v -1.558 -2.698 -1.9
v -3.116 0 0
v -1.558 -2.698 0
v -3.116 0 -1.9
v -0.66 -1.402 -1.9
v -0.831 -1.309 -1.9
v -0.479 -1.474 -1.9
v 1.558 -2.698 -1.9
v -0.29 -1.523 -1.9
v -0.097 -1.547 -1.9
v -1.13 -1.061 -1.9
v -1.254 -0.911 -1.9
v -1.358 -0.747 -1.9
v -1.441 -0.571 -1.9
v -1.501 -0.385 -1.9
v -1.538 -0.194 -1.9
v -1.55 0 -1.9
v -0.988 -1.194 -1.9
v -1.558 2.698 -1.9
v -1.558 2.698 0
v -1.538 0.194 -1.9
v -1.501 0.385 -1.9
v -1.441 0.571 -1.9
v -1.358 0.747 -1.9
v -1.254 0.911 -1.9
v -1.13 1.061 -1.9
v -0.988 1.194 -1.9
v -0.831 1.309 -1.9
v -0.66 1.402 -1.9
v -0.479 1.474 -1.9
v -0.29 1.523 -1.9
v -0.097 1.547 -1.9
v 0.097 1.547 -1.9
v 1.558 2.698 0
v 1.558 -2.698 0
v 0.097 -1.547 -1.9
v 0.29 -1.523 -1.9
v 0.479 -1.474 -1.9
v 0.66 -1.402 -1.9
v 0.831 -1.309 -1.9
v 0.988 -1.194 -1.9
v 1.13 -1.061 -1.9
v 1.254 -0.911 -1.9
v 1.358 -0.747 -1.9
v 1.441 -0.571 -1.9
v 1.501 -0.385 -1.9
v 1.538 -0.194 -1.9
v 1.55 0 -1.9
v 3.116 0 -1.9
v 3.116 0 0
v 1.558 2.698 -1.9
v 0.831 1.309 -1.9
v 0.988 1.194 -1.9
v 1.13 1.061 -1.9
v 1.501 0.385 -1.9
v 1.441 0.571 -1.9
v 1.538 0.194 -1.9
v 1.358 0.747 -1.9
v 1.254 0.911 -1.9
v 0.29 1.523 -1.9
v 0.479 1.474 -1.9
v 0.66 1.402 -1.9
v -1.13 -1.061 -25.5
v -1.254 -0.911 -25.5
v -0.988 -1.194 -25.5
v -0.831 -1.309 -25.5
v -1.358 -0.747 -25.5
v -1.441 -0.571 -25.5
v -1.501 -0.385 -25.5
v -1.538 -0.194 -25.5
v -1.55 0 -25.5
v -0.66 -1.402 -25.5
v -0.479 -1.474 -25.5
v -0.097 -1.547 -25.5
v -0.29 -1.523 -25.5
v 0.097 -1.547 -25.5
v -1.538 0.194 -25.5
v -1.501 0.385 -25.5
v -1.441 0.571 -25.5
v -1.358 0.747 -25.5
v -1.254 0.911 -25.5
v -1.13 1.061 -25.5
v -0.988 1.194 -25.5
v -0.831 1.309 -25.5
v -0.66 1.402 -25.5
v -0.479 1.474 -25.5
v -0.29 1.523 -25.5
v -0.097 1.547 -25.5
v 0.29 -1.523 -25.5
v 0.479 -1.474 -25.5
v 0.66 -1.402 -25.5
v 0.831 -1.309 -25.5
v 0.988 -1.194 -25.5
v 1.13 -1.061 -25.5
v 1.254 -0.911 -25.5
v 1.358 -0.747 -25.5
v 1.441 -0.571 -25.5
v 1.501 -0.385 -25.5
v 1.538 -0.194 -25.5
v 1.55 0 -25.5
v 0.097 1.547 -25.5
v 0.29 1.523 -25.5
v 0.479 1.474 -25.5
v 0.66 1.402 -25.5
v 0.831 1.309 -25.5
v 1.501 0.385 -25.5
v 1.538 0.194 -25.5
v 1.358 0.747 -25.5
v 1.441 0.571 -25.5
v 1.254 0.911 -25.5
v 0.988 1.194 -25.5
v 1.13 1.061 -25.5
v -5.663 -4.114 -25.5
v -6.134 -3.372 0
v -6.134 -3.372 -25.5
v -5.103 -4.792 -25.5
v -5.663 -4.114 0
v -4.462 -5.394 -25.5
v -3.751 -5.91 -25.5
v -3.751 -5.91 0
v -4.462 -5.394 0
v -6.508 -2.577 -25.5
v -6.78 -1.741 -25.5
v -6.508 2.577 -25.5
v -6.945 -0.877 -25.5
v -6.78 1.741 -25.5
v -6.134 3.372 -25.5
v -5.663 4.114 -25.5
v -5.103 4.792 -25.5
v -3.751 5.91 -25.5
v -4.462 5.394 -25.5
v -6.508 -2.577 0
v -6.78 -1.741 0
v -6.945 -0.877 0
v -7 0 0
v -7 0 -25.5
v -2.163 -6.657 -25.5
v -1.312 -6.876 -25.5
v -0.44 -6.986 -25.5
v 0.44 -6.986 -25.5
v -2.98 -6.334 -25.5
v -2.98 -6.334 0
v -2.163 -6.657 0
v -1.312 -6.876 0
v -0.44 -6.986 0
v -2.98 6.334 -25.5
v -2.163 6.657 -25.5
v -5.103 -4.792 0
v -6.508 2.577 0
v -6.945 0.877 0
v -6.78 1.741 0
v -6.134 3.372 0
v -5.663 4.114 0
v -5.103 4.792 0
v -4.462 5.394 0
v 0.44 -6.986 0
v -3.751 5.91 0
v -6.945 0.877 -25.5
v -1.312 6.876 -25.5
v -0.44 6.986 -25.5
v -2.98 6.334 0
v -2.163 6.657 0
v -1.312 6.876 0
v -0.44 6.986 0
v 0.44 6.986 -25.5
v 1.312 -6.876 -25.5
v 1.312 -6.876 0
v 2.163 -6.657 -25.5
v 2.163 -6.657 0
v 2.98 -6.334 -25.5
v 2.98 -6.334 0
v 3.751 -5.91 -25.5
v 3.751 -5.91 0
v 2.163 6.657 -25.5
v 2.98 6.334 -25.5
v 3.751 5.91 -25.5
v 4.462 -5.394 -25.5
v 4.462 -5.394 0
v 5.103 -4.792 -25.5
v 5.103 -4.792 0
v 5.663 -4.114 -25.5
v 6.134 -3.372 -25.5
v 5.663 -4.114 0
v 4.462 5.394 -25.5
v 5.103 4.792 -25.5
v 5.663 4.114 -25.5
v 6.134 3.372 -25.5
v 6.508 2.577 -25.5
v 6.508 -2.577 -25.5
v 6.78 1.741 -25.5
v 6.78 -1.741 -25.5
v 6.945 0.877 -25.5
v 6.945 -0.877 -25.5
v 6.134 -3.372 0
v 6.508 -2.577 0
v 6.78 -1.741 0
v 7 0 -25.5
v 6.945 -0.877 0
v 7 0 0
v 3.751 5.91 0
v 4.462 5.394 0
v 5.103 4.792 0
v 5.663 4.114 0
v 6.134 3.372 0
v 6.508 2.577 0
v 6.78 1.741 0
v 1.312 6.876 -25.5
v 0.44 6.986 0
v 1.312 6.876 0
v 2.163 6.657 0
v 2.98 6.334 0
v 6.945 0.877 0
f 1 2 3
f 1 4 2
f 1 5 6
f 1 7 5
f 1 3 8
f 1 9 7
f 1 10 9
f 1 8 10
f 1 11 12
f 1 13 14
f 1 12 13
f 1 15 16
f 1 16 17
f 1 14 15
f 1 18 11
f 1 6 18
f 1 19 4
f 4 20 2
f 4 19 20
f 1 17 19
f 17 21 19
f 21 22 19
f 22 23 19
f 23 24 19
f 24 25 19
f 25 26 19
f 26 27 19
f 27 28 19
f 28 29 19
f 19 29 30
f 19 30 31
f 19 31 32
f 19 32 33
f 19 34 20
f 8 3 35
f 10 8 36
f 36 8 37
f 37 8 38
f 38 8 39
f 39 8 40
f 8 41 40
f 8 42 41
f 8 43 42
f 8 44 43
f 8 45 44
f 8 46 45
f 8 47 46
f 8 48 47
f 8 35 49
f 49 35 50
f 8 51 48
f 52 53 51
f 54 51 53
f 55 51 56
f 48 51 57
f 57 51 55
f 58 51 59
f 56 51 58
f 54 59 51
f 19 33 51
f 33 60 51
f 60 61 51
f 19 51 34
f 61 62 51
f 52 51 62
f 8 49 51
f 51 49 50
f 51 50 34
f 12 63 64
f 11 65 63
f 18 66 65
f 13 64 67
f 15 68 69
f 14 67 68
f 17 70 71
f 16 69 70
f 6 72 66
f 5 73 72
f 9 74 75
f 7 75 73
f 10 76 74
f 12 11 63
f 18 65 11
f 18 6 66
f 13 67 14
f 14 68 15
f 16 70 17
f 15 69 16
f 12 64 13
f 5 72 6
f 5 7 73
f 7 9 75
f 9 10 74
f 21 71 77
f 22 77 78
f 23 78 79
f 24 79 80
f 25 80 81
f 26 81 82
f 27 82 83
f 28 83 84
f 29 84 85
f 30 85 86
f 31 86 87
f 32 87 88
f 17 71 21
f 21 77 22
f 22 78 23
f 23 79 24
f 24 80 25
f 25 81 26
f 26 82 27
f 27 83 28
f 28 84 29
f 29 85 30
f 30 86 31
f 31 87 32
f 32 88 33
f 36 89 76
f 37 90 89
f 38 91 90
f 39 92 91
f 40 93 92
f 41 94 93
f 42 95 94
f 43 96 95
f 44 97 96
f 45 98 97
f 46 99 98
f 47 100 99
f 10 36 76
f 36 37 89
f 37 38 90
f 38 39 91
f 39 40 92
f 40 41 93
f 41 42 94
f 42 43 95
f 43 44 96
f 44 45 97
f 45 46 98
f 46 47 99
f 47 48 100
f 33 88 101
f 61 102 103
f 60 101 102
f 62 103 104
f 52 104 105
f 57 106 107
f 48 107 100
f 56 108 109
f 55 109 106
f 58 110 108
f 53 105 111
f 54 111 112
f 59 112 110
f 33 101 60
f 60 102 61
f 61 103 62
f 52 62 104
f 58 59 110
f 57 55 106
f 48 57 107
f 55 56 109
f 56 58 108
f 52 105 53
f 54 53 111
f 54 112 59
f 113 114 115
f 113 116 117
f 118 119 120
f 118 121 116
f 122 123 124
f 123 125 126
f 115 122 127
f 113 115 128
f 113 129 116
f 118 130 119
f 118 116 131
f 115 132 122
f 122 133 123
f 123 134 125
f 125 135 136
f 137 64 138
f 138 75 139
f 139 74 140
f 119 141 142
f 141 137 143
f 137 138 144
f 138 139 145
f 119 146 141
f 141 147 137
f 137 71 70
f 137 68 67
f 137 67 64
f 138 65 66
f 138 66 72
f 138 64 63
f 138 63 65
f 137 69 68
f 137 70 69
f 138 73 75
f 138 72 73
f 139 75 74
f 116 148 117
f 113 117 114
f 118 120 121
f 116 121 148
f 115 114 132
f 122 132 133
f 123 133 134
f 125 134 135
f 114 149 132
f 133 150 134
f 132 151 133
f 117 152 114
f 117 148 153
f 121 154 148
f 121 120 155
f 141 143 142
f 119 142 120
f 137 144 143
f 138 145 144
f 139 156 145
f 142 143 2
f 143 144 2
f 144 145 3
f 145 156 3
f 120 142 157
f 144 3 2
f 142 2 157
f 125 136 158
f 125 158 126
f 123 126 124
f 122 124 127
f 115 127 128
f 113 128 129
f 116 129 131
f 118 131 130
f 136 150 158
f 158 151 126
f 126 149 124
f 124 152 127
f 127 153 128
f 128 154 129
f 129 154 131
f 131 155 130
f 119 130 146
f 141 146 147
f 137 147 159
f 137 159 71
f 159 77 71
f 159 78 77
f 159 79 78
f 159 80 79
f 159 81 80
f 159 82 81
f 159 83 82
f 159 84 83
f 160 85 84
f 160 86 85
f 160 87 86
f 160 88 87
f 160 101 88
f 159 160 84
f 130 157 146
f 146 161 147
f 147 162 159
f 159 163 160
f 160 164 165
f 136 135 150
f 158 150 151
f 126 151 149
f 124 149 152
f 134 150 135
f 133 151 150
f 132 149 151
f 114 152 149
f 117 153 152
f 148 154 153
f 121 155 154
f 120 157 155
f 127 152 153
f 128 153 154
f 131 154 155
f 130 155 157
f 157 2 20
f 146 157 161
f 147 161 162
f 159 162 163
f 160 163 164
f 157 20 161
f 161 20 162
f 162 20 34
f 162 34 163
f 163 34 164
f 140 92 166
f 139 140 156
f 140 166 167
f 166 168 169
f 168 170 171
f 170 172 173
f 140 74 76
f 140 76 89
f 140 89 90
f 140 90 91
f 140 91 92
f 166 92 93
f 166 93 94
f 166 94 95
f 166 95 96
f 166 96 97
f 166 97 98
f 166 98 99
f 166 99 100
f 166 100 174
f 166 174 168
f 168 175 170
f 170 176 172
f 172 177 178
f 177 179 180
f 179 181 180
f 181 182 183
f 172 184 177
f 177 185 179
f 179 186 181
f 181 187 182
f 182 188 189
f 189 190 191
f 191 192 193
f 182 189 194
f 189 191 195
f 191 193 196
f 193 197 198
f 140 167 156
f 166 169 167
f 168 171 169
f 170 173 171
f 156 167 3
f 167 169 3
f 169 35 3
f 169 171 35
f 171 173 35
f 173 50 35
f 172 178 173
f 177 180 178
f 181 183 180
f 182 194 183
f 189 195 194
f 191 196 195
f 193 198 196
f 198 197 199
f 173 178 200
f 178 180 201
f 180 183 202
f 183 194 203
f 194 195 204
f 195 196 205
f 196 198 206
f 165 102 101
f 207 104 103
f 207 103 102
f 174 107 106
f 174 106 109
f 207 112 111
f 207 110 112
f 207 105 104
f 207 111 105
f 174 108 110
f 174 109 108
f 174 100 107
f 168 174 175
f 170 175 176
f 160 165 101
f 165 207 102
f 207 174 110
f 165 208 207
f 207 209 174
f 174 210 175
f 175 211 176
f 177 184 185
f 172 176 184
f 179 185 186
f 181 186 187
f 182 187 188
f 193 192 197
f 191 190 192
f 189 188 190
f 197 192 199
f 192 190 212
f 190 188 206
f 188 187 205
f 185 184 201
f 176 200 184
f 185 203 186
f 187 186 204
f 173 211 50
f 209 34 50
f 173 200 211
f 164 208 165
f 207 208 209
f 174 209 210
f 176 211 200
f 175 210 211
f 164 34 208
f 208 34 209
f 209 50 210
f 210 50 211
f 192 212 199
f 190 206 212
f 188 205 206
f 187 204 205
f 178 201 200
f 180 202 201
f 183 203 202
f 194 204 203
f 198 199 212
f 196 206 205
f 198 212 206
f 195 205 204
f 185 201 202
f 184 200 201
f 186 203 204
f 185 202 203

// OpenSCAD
$fn = 50;

difference() {
	union() {
		translate(v = [0, 0, -25.5]) {
			cylinder(h = 25.5, r = 7.0);
		}
	}
	union() {
		translate(v = [0, 0, 0]) {
			rotate(a = [0, 0, 0]) {
				difference() {
					union() {
						translate(v = [0, 0, -1.9]) {
							linear_extrude(height = 1.9) {
								polygon(points = [[3.1158, 0.0], [1.5579000000000005, 2.698361953111554], [-1.5578999999999994, 2.6983619531115544], [-3.1158, 3.815754496783323e-16], [-1.5579000000000014, -2.6983619531115535], [1.557899999999998, -2.6983619531115552]]);
							}
						}
					}
					union();
				}
			}
		}
		#translate(v = [0, 0, -100.0]) {
			cylinder(h = 200, r = 1.55);
		}
	}
}
